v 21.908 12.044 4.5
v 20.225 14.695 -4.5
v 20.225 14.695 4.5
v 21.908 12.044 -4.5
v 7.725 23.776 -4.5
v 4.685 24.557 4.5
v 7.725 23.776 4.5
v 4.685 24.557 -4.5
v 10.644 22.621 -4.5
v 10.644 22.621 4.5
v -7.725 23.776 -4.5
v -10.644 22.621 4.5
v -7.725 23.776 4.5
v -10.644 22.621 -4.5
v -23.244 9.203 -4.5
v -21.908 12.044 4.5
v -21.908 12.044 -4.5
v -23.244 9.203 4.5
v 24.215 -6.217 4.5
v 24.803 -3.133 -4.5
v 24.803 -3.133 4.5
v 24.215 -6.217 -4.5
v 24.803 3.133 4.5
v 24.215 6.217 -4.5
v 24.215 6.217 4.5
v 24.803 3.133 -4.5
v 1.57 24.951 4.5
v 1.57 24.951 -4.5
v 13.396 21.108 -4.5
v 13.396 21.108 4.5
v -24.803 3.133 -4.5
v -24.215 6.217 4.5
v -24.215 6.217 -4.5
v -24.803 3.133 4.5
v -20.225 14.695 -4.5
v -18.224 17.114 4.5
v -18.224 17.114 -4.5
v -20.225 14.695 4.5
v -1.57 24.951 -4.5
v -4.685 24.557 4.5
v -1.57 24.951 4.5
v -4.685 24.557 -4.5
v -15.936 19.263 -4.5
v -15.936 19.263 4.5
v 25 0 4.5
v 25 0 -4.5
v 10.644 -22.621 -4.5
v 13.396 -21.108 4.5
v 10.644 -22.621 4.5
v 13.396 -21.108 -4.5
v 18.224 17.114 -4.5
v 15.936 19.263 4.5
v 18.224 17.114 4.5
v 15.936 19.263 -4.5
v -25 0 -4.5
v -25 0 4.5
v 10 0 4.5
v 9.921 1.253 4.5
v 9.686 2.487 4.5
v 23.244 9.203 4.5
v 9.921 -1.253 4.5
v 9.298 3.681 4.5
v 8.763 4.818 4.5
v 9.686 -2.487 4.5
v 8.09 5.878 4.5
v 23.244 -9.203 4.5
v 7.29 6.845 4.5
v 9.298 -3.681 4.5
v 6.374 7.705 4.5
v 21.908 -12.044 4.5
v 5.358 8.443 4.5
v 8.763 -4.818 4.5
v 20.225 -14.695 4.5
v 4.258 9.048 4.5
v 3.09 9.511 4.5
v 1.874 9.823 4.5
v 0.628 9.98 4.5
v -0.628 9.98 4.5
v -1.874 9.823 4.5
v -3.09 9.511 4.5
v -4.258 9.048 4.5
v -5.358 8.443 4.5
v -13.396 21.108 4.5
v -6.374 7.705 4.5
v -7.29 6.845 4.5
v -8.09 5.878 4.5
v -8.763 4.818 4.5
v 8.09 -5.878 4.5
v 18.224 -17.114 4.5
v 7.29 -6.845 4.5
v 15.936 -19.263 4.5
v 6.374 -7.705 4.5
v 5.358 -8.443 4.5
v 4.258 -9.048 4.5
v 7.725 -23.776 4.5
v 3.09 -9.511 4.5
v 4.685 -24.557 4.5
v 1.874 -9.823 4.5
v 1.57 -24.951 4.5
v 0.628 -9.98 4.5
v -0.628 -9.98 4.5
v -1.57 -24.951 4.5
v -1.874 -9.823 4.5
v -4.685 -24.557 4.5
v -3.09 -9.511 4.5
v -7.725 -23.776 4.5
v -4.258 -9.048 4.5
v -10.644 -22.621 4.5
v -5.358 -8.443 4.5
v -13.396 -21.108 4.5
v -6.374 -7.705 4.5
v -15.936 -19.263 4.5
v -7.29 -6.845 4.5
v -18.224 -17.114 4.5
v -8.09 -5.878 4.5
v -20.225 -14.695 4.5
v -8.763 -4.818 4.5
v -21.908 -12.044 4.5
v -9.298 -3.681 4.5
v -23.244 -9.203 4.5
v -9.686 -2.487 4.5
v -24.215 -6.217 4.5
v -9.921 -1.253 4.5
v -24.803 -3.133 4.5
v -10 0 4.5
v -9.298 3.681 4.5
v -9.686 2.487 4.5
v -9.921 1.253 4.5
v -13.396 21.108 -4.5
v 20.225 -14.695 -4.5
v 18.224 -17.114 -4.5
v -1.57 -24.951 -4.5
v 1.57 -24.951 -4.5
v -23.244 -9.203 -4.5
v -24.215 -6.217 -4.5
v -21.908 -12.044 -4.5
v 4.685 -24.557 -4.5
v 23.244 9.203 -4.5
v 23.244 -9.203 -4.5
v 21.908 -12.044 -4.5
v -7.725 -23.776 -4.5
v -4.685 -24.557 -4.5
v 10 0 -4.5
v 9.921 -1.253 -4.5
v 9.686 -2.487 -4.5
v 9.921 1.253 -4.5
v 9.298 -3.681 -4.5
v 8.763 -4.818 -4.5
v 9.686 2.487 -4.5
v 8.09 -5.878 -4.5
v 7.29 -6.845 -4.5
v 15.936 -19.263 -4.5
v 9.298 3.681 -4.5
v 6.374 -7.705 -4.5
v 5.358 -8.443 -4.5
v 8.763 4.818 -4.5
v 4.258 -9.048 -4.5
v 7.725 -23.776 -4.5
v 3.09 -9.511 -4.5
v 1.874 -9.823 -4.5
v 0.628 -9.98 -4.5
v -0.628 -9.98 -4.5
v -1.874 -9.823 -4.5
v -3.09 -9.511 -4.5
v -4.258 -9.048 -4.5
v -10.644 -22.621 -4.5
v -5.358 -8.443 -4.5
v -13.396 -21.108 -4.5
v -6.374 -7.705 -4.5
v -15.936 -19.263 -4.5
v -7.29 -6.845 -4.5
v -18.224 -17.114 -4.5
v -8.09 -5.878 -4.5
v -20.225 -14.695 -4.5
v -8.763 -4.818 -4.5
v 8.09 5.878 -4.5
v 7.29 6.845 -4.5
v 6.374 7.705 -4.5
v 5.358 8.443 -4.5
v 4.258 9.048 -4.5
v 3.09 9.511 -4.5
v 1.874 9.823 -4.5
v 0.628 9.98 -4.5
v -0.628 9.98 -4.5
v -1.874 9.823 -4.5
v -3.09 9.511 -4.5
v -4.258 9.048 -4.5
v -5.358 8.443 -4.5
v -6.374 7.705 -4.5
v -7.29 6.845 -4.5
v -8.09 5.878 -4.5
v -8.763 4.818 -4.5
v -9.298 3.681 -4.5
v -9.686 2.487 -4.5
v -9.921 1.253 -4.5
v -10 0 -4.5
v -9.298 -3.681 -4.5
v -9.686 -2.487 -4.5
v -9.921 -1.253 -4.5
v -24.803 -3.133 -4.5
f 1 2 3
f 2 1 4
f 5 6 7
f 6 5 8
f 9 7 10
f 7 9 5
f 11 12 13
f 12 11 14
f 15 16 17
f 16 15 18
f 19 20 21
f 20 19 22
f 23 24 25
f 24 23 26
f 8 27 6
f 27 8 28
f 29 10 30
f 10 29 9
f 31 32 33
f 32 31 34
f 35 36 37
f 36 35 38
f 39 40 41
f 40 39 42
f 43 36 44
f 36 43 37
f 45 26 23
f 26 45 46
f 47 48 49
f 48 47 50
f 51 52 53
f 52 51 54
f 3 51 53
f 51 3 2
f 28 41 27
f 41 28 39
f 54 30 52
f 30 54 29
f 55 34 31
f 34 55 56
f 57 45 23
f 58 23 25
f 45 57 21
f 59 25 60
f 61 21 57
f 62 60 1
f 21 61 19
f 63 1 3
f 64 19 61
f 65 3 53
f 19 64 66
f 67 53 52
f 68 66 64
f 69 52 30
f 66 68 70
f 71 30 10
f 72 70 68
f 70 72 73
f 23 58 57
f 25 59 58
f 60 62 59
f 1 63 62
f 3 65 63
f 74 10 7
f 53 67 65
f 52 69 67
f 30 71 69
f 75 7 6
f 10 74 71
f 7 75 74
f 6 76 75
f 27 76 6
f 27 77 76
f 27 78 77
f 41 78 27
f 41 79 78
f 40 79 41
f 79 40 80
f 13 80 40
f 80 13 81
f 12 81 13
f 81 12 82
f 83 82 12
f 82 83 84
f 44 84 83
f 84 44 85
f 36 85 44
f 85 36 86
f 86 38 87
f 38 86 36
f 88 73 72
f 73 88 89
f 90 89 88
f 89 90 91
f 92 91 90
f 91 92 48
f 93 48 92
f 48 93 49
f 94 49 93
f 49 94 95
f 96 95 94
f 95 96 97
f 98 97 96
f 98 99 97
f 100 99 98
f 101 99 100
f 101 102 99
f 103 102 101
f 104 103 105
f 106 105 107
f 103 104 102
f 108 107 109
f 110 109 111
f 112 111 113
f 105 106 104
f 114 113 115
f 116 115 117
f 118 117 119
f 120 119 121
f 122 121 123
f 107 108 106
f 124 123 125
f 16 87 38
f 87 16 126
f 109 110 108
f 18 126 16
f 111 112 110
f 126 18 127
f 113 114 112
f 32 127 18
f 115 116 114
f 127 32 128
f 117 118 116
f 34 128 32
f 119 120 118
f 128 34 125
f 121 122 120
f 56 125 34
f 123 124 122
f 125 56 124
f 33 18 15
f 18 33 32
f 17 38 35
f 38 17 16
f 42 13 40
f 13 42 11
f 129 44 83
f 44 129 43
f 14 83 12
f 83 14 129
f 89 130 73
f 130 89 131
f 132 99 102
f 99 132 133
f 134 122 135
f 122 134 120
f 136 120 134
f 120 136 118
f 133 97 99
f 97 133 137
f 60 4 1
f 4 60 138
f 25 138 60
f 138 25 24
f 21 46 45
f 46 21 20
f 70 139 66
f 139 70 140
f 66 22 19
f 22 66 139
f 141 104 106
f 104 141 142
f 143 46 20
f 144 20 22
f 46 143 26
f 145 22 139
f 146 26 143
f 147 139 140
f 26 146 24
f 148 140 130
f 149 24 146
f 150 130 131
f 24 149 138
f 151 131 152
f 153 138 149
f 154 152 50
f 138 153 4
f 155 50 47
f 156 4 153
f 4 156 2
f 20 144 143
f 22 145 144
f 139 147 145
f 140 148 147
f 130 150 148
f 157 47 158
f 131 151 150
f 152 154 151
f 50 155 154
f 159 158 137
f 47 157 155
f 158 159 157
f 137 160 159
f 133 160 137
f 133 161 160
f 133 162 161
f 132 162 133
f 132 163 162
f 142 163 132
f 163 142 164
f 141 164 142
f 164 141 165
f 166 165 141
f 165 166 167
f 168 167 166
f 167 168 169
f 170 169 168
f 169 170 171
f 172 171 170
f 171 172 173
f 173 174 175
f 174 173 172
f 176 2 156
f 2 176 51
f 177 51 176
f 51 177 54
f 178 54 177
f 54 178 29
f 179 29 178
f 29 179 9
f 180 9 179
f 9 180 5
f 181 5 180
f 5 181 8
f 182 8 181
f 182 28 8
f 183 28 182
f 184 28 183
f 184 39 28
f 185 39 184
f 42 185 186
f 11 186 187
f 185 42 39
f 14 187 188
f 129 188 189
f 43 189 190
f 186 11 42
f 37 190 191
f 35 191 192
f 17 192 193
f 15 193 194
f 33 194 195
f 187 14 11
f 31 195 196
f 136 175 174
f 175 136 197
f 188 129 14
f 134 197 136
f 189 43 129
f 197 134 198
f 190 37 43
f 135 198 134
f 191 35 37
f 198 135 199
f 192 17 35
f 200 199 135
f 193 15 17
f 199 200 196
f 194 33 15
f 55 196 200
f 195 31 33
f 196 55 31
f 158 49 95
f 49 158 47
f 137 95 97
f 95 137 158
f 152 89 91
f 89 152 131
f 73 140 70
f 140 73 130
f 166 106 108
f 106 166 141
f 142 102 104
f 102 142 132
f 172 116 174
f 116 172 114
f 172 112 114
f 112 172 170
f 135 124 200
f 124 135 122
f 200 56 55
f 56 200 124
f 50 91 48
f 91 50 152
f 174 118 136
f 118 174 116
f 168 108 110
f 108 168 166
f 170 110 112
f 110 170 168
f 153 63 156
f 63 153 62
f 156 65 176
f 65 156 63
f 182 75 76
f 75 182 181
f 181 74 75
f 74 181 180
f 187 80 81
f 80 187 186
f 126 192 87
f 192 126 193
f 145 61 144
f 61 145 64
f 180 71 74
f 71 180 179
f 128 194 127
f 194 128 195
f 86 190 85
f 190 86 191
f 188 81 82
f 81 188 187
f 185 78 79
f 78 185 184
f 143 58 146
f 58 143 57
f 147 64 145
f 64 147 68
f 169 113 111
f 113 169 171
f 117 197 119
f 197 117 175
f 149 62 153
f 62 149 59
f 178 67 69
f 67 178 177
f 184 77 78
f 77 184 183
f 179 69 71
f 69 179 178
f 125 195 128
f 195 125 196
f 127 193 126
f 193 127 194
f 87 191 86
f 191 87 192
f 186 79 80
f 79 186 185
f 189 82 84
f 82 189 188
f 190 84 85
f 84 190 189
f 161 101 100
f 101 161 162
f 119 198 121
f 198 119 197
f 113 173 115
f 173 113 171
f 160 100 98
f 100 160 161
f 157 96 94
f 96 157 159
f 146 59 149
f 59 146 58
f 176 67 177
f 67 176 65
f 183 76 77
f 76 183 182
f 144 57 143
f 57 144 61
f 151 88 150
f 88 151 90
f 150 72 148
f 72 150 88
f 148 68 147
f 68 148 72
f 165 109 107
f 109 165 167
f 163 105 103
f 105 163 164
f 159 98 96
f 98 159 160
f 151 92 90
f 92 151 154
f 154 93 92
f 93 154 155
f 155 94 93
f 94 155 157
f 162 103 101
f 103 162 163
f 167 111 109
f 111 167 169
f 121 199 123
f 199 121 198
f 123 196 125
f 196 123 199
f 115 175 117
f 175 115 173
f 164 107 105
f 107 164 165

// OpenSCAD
$fn = 50;


difference() {
	union() {
		translate(v = [0, 0, -4.5000000000]) {
			cylinder(h = 9, r = 25.0000000000);
		}
	}
	union() {
		translate(v = [0, 0, -100.0000000000]) {
			cylinder(h = 200, r = 10);
		}
	}
}
